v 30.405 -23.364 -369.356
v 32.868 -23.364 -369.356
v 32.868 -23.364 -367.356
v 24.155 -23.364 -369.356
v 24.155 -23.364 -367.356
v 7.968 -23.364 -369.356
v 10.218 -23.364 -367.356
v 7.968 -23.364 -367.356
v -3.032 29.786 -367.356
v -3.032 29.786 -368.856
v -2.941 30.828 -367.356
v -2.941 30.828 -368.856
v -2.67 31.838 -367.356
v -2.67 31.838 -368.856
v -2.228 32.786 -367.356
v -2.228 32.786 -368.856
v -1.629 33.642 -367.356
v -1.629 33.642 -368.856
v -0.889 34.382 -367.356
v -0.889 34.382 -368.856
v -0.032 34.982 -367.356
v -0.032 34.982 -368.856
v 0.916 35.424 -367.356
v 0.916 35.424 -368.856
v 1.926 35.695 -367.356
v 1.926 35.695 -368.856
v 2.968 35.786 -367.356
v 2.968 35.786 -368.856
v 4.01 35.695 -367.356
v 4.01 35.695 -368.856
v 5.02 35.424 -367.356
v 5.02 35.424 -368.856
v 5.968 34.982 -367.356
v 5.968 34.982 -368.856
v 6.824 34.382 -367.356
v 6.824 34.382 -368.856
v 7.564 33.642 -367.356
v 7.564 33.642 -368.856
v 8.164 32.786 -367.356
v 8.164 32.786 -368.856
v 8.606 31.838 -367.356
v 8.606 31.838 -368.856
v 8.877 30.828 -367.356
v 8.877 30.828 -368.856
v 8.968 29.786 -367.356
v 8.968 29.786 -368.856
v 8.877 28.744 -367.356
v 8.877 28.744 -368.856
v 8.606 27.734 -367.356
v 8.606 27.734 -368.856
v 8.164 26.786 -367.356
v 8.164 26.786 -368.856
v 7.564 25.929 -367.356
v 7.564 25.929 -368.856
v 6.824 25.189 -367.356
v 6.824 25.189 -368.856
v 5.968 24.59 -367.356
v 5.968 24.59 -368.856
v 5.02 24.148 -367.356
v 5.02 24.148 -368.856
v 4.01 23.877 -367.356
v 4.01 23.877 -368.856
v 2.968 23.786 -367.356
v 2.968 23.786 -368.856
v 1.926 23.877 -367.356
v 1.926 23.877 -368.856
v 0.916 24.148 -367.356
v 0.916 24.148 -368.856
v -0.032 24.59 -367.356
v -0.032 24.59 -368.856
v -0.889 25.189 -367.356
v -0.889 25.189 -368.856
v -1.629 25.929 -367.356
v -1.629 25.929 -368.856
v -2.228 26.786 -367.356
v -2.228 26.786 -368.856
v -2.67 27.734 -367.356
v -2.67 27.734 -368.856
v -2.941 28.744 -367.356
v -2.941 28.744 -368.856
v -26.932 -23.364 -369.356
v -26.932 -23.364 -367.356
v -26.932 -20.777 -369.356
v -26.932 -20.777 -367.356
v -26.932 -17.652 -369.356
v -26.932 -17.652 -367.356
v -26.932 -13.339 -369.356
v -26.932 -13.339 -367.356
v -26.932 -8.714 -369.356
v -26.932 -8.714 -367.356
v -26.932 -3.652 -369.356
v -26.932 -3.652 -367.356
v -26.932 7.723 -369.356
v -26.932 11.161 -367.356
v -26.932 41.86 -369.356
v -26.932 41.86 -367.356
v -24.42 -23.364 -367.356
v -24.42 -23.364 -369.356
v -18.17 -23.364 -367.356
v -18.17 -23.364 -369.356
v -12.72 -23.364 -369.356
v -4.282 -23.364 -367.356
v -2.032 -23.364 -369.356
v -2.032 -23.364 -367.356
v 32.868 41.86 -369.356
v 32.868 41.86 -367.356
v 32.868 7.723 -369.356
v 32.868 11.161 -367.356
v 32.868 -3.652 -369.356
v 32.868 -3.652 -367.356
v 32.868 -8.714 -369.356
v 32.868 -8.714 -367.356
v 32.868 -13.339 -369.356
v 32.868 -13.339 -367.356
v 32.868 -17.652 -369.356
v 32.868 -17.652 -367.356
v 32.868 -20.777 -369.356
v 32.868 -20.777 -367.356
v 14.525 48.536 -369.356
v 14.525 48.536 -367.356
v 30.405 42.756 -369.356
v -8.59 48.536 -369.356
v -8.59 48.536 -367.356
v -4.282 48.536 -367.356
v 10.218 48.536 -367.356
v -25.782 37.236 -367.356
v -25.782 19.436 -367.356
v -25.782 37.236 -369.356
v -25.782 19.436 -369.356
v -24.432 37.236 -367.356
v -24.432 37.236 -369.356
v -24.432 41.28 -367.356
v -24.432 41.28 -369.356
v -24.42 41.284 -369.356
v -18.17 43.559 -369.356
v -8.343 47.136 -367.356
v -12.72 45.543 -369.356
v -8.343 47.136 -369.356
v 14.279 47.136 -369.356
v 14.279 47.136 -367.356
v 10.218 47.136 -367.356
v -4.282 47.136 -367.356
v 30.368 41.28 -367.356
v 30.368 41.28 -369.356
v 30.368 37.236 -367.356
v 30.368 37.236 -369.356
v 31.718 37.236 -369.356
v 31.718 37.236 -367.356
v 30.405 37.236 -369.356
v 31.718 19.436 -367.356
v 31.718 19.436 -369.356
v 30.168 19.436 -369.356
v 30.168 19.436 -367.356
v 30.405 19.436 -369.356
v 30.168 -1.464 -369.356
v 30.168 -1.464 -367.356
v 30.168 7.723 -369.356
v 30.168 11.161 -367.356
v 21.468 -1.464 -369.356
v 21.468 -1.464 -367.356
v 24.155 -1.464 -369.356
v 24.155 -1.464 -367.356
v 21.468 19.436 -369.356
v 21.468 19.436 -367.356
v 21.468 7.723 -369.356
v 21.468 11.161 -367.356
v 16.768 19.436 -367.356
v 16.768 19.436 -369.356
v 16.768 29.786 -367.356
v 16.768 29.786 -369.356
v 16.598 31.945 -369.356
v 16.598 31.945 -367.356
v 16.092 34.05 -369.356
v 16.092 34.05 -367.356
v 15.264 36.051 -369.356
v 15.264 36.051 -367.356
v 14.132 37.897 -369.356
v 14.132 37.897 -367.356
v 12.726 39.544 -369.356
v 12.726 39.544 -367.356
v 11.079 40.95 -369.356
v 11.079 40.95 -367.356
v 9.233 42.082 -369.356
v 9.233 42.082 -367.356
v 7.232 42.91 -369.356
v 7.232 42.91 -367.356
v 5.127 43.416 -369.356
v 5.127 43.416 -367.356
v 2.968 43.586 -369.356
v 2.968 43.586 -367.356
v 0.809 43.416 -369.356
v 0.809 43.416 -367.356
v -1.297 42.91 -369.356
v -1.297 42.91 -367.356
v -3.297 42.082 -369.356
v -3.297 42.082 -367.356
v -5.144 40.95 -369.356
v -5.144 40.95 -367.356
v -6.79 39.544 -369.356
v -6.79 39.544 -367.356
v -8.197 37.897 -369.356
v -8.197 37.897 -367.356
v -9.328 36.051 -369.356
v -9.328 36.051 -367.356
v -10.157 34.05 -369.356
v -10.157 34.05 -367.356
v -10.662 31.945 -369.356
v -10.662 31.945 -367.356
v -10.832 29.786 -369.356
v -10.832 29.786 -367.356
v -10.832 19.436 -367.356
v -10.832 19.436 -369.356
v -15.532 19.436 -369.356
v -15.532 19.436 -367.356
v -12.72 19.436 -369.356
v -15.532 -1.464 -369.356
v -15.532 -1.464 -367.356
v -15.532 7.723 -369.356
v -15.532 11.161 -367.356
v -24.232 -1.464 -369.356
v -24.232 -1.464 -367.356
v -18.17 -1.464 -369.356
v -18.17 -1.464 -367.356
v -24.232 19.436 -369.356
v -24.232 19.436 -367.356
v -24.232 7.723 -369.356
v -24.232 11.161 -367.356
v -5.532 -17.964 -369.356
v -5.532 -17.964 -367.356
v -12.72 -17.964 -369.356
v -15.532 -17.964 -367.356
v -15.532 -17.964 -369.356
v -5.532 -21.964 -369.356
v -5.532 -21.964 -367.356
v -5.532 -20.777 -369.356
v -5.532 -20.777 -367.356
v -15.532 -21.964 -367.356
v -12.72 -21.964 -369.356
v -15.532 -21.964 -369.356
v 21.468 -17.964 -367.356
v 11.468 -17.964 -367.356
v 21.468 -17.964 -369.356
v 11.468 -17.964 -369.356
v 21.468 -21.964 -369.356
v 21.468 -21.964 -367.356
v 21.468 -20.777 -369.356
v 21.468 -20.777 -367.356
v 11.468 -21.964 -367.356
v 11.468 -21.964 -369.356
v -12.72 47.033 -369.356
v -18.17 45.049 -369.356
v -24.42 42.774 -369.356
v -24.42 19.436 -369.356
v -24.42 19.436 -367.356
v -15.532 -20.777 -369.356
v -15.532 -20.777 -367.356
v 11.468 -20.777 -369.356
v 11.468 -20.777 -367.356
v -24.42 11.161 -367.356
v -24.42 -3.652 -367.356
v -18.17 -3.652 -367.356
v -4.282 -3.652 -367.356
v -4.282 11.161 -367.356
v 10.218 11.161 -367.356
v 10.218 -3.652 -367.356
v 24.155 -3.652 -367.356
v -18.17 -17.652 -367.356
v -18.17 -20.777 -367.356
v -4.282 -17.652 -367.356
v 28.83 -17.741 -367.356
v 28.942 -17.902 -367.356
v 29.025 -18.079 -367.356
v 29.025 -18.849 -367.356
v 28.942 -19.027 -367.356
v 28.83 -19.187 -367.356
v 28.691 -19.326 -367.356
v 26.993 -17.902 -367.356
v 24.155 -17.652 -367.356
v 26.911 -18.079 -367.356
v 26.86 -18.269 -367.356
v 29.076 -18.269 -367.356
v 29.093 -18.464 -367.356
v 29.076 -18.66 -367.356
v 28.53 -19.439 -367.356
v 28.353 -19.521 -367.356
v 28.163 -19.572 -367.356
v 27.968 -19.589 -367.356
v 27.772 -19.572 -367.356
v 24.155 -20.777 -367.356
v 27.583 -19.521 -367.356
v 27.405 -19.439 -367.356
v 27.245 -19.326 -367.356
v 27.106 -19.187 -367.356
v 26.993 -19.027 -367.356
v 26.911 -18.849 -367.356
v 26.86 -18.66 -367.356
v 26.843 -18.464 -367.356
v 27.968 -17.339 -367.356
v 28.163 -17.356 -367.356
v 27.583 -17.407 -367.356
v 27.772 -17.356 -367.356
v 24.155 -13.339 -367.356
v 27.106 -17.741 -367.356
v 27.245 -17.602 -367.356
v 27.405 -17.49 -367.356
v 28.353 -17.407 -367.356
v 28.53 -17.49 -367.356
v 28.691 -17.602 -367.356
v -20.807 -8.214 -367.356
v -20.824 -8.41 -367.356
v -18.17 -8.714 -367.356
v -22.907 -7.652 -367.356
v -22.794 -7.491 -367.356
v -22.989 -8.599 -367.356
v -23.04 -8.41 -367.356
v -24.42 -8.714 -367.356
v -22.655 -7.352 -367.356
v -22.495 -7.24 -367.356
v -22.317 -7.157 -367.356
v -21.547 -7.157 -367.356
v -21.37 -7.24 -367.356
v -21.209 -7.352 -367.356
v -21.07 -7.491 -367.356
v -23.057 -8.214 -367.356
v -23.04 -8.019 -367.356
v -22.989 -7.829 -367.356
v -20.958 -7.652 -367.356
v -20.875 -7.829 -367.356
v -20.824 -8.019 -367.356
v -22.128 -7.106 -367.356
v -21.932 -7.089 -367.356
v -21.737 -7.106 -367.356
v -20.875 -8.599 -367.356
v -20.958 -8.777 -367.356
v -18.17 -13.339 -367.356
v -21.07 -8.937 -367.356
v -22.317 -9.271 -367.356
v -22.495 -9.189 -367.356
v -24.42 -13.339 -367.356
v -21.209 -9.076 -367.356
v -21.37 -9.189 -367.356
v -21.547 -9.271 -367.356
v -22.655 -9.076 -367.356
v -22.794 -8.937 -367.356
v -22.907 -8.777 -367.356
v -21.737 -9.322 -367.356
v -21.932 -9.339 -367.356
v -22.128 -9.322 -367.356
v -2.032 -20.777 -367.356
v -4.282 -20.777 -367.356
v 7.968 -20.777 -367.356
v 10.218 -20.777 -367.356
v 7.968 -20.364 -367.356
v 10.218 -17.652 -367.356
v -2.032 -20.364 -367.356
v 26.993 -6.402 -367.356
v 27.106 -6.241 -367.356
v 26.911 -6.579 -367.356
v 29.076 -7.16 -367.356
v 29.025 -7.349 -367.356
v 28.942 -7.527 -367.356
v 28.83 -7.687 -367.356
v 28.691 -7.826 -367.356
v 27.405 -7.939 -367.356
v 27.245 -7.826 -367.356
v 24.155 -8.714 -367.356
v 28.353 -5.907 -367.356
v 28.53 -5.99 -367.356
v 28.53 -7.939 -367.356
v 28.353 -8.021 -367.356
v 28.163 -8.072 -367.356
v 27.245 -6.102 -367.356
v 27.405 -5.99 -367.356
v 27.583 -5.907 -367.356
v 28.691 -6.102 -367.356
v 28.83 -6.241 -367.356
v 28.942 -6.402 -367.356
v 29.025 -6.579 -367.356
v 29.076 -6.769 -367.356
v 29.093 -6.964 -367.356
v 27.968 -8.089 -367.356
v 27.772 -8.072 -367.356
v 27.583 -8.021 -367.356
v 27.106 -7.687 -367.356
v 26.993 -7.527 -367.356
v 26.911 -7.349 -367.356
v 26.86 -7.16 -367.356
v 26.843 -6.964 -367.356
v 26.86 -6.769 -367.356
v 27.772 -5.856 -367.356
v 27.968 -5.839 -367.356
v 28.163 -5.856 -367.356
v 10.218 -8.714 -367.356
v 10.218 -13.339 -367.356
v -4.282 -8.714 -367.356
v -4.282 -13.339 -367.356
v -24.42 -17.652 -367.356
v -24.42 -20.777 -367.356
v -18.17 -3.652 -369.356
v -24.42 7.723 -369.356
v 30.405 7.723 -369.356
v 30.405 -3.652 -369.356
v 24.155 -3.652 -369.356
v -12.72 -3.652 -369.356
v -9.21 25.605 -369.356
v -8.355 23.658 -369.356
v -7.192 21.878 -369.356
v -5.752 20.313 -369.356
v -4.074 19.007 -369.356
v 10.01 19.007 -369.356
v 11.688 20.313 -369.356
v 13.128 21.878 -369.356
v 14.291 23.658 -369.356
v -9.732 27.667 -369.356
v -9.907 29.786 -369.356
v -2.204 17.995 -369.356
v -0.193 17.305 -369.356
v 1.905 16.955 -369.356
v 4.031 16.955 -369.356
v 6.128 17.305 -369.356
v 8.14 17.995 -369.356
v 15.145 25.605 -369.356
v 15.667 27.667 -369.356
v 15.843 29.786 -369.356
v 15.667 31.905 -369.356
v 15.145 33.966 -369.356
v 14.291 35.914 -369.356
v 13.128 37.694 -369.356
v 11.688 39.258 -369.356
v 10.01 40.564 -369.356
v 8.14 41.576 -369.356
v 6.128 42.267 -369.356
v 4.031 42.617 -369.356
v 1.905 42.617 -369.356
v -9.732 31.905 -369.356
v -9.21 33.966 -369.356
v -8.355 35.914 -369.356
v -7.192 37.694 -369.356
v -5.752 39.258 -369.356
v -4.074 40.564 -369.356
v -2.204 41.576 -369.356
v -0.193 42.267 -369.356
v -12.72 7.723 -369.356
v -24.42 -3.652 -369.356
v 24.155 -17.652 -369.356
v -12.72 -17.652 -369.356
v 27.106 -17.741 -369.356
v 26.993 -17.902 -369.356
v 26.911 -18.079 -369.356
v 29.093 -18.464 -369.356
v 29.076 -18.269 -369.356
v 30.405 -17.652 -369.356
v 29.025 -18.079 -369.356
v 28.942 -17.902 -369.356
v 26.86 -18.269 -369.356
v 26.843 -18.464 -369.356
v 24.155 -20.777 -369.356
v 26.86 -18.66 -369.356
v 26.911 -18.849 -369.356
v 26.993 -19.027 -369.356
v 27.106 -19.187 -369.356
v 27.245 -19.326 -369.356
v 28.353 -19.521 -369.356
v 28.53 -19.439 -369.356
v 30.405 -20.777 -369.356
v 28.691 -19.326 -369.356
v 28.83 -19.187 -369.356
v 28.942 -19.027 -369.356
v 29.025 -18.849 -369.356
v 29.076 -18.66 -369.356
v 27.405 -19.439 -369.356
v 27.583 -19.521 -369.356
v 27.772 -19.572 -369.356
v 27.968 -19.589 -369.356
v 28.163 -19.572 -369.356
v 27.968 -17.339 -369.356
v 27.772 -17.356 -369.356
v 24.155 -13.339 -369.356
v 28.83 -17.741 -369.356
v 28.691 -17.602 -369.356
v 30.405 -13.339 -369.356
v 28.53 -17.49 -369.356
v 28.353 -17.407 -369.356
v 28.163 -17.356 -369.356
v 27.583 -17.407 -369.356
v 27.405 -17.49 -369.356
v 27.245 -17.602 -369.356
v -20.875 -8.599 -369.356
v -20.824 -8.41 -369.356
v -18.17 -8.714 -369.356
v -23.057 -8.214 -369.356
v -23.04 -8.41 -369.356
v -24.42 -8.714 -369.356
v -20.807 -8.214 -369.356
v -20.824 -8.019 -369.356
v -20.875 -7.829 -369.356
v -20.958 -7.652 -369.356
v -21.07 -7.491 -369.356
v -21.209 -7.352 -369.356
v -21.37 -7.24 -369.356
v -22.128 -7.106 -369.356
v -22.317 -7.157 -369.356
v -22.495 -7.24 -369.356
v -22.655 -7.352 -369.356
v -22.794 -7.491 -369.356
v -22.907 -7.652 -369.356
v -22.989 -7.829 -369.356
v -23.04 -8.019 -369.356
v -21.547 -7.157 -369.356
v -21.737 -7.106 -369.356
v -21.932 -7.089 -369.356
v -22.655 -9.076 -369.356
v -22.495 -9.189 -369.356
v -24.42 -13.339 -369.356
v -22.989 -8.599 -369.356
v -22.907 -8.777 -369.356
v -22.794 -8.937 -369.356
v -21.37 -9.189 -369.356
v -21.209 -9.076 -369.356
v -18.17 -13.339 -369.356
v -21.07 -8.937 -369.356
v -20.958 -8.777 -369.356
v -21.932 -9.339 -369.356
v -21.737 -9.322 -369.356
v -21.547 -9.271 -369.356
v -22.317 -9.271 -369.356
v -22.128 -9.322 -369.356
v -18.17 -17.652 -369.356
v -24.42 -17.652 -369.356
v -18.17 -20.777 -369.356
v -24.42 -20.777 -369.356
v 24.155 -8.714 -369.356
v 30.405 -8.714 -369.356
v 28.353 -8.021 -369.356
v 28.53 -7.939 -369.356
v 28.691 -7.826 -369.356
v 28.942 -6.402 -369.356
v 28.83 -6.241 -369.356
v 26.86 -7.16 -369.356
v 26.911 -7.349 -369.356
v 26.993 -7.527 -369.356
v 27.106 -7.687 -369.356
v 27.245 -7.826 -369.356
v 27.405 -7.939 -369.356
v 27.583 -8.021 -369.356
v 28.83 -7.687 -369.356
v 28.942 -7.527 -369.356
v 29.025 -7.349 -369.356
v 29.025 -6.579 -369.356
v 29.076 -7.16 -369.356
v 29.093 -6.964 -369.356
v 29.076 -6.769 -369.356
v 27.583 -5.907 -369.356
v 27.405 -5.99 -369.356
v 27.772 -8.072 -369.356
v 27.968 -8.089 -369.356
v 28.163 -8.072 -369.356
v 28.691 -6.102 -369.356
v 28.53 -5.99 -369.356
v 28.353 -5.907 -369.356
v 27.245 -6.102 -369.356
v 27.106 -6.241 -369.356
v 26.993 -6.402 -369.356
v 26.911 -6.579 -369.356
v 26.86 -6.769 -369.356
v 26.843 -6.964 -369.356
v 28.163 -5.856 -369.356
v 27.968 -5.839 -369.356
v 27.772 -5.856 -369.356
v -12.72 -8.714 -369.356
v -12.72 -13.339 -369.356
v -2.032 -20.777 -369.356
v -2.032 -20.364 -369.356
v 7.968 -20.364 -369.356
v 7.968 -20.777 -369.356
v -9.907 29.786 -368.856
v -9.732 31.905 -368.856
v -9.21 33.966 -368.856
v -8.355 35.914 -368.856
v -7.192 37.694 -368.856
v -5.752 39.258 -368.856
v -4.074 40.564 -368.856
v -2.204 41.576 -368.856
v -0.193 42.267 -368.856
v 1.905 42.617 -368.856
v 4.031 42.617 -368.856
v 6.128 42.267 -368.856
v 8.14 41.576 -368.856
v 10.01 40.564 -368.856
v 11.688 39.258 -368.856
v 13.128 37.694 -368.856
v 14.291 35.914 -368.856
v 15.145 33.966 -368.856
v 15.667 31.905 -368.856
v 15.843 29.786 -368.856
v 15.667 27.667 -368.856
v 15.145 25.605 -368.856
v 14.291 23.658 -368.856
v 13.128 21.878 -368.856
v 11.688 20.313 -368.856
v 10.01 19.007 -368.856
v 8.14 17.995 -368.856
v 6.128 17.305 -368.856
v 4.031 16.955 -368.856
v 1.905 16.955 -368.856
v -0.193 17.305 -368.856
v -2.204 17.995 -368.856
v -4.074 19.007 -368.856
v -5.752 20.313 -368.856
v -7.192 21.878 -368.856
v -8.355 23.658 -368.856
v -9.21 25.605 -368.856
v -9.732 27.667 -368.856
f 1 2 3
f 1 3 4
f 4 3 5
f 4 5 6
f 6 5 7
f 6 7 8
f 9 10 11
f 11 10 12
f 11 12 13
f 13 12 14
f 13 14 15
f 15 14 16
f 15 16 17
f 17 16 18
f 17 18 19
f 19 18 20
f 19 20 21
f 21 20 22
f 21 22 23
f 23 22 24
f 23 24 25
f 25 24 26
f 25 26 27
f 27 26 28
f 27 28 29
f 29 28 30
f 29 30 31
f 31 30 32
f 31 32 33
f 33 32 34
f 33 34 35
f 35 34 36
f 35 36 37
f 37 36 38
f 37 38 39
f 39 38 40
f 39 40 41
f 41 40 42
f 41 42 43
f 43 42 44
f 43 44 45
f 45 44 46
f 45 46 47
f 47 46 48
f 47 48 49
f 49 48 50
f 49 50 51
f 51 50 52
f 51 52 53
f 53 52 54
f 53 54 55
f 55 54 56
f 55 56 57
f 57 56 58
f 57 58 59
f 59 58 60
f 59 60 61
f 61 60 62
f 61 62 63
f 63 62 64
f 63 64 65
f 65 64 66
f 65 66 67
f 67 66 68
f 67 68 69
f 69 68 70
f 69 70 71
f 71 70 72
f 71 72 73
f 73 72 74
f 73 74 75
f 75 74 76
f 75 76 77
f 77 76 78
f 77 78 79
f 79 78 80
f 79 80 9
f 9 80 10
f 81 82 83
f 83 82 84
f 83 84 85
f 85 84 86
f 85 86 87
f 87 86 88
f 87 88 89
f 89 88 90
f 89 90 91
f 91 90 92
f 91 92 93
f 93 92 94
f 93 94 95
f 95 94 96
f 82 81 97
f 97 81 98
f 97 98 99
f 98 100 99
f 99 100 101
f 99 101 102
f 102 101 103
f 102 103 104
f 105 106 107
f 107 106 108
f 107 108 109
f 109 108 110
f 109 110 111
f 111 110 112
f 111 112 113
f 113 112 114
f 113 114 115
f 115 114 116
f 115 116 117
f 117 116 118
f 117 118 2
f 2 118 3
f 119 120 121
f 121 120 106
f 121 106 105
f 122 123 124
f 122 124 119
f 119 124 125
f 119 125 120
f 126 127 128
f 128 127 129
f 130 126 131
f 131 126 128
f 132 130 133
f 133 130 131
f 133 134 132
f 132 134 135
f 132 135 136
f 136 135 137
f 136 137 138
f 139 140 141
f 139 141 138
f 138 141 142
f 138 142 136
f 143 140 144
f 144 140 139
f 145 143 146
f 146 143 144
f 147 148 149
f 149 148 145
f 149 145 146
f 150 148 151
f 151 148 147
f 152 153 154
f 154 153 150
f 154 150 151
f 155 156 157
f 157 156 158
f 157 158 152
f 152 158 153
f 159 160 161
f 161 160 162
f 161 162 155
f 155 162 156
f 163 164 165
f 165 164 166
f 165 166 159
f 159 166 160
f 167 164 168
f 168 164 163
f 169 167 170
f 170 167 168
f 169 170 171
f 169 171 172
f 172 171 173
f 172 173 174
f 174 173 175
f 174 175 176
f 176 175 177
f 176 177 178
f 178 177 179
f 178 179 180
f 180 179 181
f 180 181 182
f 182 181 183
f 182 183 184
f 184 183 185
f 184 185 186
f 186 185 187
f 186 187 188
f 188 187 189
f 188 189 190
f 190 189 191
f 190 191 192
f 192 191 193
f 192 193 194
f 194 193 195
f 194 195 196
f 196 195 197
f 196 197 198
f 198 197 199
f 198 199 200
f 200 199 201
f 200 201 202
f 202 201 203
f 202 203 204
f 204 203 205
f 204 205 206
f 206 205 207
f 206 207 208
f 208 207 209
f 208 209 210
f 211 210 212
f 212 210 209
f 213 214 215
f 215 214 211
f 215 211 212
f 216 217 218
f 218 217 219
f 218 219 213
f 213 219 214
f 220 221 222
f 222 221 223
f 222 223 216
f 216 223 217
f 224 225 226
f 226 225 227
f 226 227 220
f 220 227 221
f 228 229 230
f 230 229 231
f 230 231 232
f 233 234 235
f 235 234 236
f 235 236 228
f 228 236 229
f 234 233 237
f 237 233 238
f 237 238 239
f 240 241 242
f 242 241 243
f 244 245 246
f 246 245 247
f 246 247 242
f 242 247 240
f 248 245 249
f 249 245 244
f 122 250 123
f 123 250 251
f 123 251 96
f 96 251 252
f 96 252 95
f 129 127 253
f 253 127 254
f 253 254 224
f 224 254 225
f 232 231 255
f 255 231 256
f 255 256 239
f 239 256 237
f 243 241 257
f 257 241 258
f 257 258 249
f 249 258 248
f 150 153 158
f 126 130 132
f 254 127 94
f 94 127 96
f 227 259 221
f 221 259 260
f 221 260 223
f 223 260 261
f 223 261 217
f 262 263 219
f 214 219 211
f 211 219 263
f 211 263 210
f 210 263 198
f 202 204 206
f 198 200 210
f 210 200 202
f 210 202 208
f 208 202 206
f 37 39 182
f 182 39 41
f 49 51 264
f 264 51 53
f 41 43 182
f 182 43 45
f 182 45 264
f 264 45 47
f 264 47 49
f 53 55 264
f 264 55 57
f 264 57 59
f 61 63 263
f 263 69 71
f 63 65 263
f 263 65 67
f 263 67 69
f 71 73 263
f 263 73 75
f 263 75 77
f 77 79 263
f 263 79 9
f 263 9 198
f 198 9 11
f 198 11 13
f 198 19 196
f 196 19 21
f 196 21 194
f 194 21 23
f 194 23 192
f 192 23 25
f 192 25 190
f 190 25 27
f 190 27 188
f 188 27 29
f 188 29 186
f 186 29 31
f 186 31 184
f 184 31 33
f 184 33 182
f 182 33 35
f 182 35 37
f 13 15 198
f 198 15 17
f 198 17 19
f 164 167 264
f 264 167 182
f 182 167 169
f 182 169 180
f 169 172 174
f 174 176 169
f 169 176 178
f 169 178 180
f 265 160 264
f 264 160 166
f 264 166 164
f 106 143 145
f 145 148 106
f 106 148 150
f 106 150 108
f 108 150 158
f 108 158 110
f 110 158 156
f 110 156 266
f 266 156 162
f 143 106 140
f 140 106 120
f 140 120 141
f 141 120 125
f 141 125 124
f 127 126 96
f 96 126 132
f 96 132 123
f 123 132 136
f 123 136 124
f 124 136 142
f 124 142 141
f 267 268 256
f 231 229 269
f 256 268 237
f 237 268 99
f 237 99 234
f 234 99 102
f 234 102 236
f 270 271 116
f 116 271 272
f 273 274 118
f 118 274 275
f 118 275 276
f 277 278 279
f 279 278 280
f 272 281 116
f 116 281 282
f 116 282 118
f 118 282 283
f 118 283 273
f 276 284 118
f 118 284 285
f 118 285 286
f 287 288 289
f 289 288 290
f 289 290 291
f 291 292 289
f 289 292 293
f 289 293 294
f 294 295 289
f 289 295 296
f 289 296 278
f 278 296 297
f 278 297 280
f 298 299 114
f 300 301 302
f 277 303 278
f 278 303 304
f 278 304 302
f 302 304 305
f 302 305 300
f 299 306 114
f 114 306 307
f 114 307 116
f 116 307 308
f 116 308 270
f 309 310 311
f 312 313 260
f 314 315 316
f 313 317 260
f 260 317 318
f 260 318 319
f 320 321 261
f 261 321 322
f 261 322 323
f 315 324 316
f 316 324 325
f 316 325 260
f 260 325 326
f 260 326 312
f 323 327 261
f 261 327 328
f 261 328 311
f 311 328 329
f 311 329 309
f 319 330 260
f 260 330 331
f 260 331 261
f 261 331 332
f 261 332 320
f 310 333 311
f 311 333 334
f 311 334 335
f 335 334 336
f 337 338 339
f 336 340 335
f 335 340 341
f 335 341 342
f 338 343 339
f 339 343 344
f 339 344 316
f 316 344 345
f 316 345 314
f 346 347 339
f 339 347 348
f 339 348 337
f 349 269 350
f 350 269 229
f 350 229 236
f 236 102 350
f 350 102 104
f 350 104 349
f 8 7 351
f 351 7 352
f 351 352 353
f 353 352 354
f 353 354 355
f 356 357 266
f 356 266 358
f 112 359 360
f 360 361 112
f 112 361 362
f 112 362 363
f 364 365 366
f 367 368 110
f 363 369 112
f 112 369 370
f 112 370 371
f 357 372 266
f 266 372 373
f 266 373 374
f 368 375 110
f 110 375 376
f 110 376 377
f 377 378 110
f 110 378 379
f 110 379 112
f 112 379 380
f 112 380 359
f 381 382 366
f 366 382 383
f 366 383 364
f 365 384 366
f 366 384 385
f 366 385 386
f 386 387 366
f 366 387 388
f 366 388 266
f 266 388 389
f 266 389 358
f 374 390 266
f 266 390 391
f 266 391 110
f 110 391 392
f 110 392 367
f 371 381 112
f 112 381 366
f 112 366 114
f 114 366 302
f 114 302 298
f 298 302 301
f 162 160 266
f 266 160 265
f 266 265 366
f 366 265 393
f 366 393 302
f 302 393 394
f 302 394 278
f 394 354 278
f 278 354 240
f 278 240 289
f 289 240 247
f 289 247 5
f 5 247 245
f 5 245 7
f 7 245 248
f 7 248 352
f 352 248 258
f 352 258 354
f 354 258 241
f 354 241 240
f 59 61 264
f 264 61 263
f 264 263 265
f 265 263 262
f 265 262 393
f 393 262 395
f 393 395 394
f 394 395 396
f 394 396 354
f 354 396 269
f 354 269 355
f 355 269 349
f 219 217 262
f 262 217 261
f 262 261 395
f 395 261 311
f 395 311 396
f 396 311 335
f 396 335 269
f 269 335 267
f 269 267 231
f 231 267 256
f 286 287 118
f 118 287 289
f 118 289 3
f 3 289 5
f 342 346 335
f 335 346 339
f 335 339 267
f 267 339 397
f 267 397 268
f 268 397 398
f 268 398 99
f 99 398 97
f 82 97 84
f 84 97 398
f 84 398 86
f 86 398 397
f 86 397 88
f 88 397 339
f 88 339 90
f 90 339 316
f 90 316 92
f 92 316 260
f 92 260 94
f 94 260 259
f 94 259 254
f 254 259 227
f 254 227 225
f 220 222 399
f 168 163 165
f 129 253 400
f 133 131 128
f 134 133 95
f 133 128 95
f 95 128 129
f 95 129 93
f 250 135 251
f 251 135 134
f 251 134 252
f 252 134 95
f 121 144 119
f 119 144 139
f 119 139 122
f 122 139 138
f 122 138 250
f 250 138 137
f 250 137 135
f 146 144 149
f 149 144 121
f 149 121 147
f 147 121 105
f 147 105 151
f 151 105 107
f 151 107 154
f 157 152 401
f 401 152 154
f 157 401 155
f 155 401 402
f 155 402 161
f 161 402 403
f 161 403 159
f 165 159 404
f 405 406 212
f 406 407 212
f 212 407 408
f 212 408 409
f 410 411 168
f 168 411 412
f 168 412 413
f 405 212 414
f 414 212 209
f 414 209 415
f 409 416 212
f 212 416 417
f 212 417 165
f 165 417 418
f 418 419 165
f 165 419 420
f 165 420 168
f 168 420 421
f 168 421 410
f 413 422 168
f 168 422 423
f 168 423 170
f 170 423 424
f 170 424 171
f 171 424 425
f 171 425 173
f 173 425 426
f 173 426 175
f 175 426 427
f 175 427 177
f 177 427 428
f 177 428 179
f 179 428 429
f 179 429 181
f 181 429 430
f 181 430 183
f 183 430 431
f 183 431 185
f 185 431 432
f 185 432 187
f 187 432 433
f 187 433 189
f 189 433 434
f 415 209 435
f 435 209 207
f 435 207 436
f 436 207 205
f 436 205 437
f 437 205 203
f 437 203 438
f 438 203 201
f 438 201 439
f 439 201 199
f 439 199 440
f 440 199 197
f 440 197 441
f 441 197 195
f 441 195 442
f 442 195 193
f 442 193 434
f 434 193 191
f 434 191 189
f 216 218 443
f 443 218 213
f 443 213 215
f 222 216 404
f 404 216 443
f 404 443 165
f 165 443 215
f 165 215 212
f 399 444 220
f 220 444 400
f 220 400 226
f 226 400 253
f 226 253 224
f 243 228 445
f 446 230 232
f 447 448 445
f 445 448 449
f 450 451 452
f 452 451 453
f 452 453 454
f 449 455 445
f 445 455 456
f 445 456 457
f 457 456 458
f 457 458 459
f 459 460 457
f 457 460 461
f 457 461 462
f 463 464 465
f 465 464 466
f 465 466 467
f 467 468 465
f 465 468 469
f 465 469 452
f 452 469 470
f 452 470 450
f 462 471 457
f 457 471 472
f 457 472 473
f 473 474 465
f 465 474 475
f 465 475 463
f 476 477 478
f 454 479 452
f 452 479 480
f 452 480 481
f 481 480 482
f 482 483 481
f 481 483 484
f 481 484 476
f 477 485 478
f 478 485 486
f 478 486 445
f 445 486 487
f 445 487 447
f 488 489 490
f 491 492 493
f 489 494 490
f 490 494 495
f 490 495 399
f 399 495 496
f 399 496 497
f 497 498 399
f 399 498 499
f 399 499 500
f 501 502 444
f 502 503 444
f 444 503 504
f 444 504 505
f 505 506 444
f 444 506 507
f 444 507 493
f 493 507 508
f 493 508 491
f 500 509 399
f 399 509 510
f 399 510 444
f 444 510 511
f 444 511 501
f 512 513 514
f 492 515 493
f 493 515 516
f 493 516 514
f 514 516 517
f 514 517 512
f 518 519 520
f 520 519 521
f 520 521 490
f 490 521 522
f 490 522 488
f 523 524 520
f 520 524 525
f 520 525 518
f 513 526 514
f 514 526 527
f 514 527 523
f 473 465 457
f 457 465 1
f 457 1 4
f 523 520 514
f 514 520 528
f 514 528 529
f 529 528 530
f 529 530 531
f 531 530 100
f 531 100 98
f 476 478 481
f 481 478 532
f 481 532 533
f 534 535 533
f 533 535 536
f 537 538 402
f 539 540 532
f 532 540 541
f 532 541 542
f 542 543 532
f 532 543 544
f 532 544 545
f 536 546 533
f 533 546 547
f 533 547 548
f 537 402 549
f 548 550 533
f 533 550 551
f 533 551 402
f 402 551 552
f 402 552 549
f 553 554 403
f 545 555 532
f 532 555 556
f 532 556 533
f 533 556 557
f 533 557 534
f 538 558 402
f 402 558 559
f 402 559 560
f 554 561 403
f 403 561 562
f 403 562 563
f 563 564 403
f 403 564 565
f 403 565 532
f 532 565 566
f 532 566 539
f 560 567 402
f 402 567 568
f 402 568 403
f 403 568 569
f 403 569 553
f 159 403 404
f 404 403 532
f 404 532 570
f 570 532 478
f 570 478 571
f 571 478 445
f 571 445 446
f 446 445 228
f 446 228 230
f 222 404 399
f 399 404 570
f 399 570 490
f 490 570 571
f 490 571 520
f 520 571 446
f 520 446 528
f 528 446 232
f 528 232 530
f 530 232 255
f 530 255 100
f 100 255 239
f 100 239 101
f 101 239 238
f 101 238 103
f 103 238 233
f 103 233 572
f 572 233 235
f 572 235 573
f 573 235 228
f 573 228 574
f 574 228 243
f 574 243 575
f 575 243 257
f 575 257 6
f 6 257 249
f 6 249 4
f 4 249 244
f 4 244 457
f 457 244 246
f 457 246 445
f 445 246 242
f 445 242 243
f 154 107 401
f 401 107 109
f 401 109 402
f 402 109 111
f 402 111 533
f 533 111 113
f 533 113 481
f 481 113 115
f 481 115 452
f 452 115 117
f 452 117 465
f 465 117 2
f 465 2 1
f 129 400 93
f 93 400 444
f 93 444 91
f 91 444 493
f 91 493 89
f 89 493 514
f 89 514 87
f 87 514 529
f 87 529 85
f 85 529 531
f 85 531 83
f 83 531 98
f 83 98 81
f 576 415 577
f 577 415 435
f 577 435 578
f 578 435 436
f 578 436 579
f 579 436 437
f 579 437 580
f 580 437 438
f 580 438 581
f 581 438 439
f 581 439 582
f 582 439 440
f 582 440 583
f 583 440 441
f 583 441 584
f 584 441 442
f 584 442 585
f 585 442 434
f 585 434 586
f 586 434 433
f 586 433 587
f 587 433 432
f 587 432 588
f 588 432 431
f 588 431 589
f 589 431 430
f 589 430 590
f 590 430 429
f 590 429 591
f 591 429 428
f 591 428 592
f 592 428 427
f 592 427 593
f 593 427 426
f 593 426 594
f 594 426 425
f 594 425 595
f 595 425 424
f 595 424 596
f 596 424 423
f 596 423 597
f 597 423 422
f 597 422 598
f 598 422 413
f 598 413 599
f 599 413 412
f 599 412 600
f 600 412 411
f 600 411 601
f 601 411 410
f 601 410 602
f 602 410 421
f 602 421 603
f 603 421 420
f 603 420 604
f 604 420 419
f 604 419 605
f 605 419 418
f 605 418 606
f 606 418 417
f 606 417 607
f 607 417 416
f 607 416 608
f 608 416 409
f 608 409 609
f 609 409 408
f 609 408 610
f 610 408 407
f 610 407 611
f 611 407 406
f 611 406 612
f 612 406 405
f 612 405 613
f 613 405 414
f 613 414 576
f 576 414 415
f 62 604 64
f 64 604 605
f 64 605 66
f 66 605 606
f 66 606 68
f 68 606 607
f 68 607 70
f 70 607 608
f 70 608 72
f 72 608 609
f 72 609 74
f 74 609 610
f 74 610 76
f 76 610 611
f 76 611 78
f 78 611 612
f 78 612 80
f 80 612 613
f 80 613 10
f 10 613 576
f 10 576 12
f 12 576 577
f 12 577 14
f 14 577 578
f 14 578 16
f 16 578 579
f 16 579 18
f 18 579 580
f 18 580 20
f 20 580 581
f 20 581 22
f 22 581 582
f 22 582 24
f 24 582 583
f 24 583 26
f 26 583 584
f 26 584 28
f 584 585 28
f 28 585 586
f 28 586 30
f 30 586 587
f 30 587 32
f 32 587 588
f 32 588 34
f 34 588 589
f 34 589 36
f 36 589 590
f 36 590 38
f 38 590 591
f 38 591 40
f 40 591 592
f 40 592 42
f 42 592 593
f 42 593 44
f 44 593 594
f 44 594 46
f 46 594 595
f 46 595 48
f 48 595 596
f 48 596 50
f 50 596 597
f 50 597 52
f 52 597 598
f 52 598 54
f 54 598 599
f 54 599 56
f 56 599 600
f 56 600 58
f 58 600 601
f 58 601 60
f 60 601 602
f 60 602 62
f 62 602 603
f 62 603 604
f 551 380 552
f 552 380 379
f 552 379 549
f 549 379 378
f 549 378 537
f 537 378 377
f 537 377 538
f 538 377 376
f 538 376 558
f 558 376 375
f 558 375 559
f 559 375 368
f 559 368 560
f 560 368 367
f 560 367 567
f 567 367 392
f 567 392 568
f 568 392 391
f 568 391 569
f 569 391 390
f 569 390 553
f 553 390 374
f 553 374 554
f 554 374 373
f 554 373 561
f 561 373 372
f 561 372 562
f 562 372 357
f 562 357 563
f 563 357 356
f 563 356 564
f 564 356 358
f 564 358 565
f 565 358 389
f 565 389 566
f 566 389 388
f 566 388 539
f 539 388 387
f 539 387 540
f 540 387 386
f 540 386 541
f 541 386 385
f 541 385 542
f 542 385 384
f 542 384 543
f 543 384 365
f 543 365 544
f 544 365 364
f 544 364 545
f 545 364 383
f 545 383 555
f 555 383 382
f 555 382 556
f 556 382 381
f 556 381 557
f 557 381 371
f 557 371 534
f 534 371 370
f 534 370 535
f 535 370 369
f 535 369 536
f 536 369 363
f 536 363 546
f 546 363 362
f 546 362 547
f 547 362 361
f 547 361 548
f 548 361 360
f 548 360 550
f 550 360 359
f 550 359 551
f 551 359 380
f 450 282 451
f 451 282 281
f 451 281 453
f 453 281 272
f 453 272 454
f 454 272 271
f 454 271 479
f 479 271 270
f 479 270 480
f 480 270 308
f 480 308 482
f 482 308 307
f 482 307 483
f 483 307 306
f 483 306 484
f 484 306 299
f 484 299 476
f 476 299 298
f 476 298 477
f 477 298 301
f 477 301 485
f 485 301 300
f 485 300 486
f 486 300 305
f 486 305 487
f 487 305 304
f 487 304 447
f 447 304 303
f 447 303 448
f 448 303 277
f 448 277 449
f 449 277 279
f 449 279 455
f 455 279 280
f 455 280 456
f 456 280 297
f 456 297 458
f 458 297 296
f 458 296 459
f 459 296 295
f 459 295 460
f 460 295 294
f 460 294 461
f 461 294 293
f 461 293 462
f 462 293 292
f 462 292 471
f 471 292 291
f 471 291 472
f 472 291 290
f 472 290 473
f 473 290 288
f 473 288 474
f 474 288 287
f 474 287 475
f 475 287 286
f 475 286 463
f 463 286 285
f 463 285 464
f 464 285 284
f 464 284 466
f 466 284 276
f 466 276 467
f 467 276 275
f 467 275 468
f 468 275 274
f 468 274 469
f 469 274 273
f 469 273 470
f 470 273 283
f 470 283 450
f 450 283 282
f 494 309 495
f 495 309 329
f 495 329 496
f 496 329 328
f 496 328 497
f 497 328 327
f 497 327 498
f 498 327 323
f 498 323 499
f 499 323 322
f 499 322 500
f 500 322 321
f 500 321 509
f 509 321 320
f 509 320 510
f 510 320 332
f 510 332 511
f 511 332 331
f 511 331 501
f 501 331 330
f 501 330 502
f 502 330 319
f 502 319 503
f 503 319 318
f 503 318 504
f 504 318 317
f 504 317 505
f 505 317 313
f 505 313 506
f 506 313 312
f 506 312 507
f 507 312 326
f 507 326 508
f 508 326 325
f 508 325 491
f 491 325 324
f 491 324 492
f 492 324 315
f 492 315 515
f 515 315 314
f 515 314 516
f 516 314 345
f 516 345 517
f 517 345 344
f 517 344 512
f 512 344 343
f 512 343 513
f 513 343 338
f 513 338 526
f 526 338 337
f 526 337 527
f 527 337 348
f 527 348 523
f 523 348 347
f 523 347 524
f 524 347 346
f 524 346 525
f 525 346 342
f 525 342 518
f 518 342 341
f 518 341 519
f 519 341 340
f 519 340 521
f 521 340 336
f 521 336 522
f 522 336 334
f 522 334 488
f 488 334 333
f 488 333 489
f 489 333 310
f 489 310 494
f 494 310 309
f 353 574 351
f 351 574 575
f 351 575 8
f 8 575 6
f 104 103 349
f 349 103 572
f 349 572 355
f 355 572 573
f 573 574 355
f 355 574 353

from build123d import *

# Parameters (mm, degrees)
SKETCH1_W           = 10
SKETCH1_H           = 4
SKETCH1_R           = 6
BOSS_EXTRUDE1_DEPTH = 2
SKETCH2_R           = 12.875
CUT_EXTRUDE1_DEPTH  = 0.5
SKETCH3_R           = 1.125
CUT_EXTRUDE2_DEPTH  = 59.651581376
SKETCH4_W           = 10
SKETCH4_H           = 3
CUT_EXTRUDE3_DEPTH  = 59.651581376


with BuildPart() as part:
    # Sketch1 → Boss-Extrude1 (new body)
    with BuildSketch(Plane.XY.offset(-369.35631811)):
        Polygon((32.867749828, 41.859703988), (14.52546441, 48.535749909), (-8.589964754, 48.535749909), (-26.932250172, 41.859703988), (-26.932250172, -23.364250091), (32.867749828, -23.364250091), align=None)
        with BuildLine():
            Line((-24.432250172, 37.235749909), (-24.432250172, 41.279780692))
            Line((-24.432250172, 41.279780692), (-8.343106981, 47.135749909))
            Line((-8.343106981, 47.135749909), (14.278606637, 47.135749909))
            Line((14.278606637, 47.135749909), (30.367749828, 41.279780692))
            Line((30.367749828, 41.279780692), (30.367749828, 37.235749909))
            Line((30.367749828, 37.235749909), (31.717749828, 37.235749909))
            Line((31.717749828, 37.235749909), (31.717749828, 19.435749909))
            Line((31.717749828, 19.435749909), (30.167749828, 19.435749909))
            Line((30.167749828, 19.435749909), (30.167749828, -1.464250091))
            Line((30.167749828, -1.464250091), (21.467749828, -1.464250091))
            Line((21.467749828, -1.464250091), (21.467749828, 19.435749909))
            Line((21.467749828, 19.435749909), (16.767749828, 19.435749909))
            Line((16.767749828, 19.435749909), (16.767749828, 29.785749909))
            ThreePointArc((16.767749828, 29.785749909), (2.967749828, 43.585749909), (-10.832250172, 29.785749909))
            Line((-10.832250172, 29.785749909), (-10.832250172, 19.435749909))
            Line((-10.832250172, 19.435749909), (-15.532250172, 19.435749909))
            Line((-15.532250172, 19.435749909), (-15.532250172, -1.464250091))
            Line((-15.532250172, -1.464250091), (-24.232250172, -1.464250091))
            Line((-24.232250172, -1.464250091), (-24.232250172, 19.435749909))
            Line((-24.232250172, 19.435749909), (-25.782250172, 19.435749909))
            Line((-25.782250172, 19.435749909), (-25.782250172, 37.235749909))
            Line((-25.782250172, 37.235749909), (-24.432250172, 37.235749909))
        make_face(mode=Mode.SUBTRACT)
        with Locations((-10.532250172, -19.964250091)):
            Rectangle(SKETCH1_W, SKETCH1_H, mode=Mode.SUBTRACT)
        with Locations((16.467749828, -19.964250091)):
            Rectangle(SKETCH1_W, SKETCH1_H, mode=Mode.SUBTRACT)
        with Locations((2.967749828, 29.785749909)):
            Circle(SKETCH1_R, mode=Mode.SUBTRACT)
    extrude(amount=BOSS_EXTRUDE1_DEPTH)

    # Sketch2 → Cut-Extrude1 (cut)
    with BuildSketch(Plane(origin=(0, 0, -369.35631811), x_dir=(-1, 0, 0), z_dir=(0, 0, -1))):
        with Locations((-2.967749828, 29.785749909)):
            Circle(SKETCH2_R)
    extrude(amount=-CUT_EXTRUDE1_DEPTH, mode=Mode.SUBTRACT)

    # Sketch3 → Cut-Extrude2 (cut, through all)
    with BuildSketch(Plane.XY.offset(-367.35631811)):
        with Locations((27.967749828, -6.964250091)):
            Circle(SKETCH3_R)
        with Locations((27.967749828, -18.464250091)):
            Circle(SKETCH3_R)
        with Locations((-21.932250172, -8.214250091)):
            Circle(SKETCH3_R)
    extrude(amount=-CUT_EXTRUDE2_DEPTH, mode=Mode.SUBTRACT)

    # Sketch4 → Cut-Extrude3 (cut, through all)
    with BuildSketch(Plane.XY.offset(-367.35631811)):
        with Locations((2.967749828, -21.864250091)):
            Rectangle(SKETCH4_W, SKETCH4_H)
    extrude(amount=-CUT_EXTRUDE3_DEPTH, mode=Mode.SUBTRACT)


solid = part.part
